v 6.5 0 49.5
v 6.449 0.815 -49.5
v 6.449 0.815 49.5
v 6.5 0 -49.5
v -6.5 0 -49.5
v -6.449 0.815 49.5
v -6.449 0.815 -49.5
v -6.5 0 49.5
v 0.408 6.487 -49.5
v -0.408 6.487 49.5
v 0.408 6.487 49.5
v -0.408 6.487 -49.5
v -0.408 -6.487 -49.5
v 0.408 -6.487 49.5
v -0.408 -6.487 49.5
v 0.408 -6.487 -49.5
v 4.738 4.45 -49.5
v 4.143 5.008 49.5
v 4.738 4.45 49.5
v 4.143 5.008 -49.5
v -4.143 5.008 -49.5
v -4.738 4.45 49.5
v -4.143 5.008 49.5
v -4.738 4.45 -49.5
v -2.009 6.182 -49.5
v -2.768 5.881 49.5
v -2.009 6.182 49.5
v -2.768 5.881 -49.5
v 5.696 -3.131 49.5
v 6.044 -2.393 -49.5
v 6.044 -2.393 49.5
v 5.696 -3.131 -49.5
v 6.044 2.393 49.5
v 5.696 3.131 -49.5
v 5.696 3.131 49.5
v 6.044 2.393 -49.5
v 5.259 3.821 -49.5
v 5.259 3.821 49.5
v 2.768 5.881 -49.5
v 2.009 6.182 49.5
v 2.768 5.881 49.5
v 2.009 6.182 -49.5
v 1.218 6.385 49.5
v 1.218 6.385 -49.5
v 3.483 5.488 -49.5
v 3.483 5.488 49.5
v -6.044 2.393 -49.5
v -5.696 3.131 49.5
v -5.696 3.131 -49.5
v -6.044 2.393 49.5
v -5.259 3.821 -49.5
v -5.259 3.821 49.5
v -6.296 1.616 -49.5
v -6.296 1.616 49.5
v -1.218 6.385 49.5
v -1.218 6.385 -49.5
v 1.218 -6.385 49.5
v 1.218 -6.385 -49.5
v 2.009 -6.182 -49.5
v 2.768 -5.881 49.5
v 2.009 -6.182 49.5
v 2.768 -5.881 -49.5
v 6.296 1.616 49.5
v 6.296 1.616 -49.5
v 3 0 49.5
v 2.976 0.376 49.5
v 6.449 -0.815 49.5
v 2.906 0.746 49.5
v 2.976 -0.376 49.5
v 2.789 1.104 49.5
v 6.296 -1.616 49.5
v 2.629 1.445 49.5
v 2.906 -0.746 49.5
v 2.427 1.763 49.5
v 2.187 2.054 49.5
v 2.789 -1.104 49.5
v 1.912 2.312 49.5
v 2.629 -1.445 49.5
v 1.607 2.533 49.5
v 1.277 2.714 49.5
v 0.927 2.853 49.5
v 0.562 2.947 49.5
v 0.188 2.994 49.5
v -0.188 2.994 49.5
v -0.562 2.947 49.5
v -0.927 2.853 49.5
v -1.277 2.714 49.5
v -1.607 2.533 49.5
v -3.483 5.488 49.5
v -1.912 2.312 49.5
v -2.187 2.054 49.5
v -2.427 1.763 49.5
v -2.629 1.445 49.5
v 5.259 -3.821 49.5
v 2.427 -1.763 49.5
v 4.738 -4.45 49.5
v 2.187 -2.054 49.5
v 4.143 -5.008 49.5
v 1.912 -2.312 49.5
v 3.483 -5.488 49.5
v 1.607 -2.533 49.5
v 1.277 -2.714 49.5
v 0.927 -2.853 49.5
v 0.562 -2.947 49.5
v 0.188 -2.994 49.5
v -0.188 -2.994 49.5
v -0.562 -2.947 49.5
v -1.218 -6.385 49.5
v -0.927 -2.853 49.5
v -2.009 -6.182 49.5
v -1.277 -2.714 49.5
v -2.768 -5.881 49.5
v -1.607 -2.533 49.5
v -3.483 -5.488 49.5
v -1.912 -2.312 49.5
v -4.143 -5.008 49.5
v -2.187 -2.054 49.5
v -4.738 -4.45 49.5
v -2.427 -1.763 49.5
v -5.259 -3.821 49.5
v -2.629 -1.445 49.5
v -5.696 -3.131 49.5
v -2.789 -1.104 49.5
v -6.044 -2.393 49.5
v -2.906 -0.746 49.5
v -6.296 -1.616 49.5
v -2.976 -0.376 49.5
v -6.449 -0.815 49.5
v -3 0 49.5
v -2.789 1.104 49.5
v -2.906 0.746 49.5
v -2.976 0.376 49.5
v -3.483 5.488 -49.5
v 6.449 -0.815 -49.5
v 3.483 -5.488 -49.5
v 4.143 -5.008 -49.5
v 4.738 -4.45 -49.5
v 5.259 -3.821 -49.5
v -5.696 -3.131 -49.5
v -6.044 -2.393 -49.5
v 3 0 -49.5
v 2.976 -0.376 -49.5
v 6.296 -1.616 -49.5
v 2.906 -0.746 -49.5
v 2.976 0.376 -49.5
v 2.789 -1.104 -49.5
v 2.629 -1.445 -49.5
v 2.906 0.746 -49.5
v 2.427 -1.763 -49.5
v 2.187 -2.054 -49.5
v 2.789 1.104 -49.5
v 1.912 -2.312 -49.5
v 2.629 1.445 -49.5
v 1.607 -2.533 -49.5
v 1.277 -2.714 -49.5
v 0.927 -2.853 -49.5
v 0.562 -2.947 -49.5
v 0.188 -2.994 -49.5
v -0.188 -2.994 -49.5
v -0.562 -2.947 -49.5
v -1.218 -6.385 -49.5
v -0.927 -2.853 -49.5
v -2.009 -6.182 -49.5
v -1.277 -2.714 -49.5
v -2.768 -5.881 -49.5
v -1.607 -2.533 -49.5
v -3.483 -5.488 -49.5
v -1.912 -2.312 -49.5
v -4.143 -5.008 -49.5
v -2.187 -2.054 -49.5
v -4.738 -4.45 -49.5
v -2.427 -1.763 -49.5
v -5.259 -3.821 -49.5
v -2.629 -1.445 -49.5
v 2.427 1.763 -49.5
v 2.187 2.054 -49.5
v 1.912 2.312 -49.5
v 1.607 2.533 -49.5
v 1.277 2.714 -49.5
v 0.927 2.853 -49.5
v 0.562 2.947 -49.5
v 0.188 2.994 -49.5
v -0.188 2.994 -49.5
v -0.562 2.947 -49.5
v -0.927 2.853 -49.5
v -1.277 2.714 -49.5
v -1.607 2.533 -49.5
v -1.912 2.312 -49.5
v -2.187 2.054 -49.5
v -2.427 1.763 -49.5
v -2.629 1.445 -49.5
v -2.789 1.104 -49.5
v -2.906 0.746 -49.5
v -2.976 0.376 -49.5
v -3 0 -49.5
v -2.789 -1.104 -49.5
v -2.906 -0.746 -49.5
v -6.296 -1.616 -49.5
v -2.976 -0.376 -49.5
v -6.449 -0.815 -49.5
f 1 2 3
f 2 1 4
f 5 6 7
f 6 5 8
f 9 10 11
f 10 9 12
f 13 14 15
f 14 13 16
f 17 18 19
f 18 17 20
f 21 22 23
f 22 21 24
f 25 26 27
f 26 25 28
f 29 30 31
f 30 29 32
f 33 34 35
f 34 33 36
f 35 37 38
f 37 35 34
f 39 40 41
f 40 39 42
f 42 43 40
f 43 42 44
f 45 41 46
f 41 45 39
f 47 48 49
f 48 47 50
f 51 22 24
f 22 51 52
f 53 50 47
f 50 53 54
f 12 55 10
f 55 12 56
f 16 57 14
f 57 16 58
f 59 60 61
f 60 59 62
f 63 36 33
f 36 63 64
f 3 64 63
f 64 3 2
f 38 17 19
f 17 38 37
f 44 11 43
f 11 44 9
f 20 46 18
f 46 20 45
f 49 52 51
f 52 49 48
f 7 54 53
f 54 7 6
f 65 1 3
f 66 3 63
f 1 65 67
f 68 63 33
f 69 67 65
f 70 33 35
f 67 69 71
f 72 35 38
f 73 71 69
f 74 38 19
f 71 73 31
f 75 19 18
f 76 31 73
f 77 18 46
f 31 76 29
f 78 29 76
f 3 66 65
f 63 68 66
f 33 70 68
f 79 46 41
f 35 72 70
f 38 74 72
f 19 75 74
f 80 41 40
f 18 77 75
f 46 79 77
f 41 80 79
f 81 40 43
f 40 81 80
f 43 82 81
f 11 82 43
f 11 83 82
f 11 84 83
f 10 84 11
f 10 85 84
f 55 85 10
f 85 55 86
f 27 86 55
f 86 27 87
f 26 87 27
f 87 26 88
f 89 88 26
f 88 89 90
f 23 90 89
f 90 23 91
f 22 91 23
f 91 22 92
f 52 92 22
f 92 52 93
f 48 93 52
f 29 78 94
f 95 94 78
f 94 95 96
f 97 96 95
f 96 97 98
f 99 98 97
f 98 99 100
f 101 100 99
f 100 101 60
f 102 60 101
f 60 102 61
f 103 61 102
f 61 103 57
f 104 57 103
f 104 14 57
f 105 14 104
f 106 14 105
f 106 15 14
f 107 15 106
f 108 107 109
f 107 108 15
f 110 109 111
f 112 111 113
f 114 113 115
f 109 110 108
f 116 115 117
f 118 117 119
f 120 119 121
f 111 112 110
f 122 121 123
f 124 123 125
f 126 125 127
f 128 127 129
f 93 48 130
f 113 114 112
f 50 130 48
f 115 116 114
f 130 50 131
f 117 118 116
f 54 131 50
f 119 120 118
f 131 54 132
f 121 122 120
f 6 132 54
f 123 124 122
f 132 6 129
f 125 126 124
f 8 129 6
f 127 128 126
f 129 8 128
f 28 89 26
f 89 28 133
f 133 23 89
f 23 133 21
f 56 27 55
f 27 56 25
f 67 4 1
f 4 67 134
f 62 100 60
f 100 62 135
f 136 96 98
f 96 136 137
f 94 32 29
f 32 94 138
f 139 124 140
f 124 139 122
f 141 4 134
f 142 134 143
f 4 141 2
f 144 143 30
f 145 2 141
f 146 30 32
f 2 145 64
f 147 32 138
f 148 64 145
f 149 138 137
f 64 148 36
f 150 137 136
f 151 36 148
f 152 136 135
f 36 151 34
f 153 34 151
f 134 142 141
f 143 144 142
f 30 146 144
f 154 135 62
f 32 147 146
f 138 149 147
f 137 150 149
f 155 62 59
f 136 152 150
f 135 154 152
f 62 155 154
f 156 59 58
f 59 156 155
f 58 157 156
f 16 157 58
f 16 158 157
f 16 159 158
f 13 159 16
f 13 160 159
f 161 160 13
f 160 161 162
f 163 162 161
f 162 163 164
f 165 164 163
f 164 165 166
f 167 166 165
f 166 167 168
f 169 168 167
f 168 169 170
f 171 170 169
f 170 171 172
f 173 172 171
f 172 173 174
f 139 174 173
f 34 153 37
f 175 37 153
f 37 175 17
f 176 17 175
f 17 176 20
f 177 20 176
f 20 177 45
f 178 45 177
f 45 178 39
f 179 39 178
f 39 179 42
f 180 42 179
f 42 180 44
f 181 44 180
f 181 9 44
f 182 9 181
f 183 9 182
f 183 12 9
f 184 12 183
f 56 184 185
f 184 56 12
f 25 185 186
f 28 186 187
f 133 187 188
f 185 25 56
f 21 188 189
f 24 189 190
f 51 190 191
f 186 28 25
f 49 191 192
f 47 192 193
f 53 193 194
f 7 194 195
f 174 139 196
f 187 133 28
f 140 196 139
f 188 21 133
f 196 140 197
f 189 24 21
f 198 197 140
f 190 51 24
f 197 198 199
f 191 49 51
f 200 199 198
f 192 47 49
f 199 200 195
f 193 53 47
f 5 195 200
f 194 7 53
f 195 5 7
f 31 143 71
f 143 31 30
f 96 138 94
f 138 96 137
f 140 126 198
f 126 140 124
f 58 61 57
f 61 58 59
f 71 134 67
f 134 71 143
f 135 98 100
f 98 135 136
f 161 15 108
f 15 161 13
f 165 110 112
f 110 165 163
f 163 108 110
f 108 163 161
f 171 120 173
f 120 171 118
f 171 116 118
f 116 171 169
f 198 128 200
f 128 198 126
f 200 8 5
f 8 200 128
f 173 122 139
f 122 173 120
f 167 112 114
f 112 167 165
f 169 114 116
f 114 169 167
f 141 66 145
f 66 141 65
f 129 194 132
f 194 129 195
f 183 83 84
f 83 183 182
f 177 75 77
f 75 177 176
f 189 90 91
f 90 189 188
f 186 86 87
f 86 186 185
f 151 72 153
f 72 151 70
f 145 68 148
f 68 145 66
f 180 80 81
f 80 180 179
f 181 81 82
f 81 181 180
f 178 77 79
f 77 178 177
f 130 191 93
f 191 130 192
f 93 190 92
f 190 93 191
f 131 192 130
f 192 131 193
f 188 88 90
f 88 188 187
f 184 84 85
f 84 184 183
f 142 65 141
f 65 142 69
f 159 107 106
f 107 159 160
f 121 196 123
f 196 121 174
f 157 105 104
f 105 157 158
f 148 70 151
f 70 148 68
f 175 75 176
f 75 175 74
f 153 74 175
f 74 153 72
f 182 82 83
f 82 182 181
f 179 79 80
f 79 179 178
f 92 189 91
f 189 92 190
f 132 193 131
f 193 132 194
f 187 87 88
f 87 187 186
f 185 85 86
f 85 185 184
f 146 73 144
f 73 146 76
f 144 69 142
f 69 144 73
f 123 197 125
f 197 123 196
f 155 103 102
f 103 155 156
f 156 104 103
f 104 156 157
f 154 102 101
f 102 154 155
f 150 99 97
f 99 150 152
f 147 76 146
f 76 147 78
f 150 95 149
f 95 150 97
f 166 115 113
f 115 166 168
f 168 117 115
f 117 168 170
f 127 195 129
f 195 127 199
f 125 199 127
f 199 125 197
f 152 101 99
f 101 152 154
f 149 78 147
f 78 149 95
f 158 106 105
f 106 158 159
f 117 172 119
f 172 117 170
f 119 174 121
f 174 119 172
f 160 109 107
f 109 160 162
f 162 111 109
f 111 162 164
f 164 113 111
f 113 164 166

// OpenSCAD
$fn = 50;


difference() {
	union() {
		translate(v = [0, 0, -49.5000000000]) {
			cylinder(h = 99, r = 6.5000000000);
		}
	}
	union() {
		translate(v = [0, 0, -100.0000000000]) {
			cylinder(h = 200, r = 3);
		}
	}
}
